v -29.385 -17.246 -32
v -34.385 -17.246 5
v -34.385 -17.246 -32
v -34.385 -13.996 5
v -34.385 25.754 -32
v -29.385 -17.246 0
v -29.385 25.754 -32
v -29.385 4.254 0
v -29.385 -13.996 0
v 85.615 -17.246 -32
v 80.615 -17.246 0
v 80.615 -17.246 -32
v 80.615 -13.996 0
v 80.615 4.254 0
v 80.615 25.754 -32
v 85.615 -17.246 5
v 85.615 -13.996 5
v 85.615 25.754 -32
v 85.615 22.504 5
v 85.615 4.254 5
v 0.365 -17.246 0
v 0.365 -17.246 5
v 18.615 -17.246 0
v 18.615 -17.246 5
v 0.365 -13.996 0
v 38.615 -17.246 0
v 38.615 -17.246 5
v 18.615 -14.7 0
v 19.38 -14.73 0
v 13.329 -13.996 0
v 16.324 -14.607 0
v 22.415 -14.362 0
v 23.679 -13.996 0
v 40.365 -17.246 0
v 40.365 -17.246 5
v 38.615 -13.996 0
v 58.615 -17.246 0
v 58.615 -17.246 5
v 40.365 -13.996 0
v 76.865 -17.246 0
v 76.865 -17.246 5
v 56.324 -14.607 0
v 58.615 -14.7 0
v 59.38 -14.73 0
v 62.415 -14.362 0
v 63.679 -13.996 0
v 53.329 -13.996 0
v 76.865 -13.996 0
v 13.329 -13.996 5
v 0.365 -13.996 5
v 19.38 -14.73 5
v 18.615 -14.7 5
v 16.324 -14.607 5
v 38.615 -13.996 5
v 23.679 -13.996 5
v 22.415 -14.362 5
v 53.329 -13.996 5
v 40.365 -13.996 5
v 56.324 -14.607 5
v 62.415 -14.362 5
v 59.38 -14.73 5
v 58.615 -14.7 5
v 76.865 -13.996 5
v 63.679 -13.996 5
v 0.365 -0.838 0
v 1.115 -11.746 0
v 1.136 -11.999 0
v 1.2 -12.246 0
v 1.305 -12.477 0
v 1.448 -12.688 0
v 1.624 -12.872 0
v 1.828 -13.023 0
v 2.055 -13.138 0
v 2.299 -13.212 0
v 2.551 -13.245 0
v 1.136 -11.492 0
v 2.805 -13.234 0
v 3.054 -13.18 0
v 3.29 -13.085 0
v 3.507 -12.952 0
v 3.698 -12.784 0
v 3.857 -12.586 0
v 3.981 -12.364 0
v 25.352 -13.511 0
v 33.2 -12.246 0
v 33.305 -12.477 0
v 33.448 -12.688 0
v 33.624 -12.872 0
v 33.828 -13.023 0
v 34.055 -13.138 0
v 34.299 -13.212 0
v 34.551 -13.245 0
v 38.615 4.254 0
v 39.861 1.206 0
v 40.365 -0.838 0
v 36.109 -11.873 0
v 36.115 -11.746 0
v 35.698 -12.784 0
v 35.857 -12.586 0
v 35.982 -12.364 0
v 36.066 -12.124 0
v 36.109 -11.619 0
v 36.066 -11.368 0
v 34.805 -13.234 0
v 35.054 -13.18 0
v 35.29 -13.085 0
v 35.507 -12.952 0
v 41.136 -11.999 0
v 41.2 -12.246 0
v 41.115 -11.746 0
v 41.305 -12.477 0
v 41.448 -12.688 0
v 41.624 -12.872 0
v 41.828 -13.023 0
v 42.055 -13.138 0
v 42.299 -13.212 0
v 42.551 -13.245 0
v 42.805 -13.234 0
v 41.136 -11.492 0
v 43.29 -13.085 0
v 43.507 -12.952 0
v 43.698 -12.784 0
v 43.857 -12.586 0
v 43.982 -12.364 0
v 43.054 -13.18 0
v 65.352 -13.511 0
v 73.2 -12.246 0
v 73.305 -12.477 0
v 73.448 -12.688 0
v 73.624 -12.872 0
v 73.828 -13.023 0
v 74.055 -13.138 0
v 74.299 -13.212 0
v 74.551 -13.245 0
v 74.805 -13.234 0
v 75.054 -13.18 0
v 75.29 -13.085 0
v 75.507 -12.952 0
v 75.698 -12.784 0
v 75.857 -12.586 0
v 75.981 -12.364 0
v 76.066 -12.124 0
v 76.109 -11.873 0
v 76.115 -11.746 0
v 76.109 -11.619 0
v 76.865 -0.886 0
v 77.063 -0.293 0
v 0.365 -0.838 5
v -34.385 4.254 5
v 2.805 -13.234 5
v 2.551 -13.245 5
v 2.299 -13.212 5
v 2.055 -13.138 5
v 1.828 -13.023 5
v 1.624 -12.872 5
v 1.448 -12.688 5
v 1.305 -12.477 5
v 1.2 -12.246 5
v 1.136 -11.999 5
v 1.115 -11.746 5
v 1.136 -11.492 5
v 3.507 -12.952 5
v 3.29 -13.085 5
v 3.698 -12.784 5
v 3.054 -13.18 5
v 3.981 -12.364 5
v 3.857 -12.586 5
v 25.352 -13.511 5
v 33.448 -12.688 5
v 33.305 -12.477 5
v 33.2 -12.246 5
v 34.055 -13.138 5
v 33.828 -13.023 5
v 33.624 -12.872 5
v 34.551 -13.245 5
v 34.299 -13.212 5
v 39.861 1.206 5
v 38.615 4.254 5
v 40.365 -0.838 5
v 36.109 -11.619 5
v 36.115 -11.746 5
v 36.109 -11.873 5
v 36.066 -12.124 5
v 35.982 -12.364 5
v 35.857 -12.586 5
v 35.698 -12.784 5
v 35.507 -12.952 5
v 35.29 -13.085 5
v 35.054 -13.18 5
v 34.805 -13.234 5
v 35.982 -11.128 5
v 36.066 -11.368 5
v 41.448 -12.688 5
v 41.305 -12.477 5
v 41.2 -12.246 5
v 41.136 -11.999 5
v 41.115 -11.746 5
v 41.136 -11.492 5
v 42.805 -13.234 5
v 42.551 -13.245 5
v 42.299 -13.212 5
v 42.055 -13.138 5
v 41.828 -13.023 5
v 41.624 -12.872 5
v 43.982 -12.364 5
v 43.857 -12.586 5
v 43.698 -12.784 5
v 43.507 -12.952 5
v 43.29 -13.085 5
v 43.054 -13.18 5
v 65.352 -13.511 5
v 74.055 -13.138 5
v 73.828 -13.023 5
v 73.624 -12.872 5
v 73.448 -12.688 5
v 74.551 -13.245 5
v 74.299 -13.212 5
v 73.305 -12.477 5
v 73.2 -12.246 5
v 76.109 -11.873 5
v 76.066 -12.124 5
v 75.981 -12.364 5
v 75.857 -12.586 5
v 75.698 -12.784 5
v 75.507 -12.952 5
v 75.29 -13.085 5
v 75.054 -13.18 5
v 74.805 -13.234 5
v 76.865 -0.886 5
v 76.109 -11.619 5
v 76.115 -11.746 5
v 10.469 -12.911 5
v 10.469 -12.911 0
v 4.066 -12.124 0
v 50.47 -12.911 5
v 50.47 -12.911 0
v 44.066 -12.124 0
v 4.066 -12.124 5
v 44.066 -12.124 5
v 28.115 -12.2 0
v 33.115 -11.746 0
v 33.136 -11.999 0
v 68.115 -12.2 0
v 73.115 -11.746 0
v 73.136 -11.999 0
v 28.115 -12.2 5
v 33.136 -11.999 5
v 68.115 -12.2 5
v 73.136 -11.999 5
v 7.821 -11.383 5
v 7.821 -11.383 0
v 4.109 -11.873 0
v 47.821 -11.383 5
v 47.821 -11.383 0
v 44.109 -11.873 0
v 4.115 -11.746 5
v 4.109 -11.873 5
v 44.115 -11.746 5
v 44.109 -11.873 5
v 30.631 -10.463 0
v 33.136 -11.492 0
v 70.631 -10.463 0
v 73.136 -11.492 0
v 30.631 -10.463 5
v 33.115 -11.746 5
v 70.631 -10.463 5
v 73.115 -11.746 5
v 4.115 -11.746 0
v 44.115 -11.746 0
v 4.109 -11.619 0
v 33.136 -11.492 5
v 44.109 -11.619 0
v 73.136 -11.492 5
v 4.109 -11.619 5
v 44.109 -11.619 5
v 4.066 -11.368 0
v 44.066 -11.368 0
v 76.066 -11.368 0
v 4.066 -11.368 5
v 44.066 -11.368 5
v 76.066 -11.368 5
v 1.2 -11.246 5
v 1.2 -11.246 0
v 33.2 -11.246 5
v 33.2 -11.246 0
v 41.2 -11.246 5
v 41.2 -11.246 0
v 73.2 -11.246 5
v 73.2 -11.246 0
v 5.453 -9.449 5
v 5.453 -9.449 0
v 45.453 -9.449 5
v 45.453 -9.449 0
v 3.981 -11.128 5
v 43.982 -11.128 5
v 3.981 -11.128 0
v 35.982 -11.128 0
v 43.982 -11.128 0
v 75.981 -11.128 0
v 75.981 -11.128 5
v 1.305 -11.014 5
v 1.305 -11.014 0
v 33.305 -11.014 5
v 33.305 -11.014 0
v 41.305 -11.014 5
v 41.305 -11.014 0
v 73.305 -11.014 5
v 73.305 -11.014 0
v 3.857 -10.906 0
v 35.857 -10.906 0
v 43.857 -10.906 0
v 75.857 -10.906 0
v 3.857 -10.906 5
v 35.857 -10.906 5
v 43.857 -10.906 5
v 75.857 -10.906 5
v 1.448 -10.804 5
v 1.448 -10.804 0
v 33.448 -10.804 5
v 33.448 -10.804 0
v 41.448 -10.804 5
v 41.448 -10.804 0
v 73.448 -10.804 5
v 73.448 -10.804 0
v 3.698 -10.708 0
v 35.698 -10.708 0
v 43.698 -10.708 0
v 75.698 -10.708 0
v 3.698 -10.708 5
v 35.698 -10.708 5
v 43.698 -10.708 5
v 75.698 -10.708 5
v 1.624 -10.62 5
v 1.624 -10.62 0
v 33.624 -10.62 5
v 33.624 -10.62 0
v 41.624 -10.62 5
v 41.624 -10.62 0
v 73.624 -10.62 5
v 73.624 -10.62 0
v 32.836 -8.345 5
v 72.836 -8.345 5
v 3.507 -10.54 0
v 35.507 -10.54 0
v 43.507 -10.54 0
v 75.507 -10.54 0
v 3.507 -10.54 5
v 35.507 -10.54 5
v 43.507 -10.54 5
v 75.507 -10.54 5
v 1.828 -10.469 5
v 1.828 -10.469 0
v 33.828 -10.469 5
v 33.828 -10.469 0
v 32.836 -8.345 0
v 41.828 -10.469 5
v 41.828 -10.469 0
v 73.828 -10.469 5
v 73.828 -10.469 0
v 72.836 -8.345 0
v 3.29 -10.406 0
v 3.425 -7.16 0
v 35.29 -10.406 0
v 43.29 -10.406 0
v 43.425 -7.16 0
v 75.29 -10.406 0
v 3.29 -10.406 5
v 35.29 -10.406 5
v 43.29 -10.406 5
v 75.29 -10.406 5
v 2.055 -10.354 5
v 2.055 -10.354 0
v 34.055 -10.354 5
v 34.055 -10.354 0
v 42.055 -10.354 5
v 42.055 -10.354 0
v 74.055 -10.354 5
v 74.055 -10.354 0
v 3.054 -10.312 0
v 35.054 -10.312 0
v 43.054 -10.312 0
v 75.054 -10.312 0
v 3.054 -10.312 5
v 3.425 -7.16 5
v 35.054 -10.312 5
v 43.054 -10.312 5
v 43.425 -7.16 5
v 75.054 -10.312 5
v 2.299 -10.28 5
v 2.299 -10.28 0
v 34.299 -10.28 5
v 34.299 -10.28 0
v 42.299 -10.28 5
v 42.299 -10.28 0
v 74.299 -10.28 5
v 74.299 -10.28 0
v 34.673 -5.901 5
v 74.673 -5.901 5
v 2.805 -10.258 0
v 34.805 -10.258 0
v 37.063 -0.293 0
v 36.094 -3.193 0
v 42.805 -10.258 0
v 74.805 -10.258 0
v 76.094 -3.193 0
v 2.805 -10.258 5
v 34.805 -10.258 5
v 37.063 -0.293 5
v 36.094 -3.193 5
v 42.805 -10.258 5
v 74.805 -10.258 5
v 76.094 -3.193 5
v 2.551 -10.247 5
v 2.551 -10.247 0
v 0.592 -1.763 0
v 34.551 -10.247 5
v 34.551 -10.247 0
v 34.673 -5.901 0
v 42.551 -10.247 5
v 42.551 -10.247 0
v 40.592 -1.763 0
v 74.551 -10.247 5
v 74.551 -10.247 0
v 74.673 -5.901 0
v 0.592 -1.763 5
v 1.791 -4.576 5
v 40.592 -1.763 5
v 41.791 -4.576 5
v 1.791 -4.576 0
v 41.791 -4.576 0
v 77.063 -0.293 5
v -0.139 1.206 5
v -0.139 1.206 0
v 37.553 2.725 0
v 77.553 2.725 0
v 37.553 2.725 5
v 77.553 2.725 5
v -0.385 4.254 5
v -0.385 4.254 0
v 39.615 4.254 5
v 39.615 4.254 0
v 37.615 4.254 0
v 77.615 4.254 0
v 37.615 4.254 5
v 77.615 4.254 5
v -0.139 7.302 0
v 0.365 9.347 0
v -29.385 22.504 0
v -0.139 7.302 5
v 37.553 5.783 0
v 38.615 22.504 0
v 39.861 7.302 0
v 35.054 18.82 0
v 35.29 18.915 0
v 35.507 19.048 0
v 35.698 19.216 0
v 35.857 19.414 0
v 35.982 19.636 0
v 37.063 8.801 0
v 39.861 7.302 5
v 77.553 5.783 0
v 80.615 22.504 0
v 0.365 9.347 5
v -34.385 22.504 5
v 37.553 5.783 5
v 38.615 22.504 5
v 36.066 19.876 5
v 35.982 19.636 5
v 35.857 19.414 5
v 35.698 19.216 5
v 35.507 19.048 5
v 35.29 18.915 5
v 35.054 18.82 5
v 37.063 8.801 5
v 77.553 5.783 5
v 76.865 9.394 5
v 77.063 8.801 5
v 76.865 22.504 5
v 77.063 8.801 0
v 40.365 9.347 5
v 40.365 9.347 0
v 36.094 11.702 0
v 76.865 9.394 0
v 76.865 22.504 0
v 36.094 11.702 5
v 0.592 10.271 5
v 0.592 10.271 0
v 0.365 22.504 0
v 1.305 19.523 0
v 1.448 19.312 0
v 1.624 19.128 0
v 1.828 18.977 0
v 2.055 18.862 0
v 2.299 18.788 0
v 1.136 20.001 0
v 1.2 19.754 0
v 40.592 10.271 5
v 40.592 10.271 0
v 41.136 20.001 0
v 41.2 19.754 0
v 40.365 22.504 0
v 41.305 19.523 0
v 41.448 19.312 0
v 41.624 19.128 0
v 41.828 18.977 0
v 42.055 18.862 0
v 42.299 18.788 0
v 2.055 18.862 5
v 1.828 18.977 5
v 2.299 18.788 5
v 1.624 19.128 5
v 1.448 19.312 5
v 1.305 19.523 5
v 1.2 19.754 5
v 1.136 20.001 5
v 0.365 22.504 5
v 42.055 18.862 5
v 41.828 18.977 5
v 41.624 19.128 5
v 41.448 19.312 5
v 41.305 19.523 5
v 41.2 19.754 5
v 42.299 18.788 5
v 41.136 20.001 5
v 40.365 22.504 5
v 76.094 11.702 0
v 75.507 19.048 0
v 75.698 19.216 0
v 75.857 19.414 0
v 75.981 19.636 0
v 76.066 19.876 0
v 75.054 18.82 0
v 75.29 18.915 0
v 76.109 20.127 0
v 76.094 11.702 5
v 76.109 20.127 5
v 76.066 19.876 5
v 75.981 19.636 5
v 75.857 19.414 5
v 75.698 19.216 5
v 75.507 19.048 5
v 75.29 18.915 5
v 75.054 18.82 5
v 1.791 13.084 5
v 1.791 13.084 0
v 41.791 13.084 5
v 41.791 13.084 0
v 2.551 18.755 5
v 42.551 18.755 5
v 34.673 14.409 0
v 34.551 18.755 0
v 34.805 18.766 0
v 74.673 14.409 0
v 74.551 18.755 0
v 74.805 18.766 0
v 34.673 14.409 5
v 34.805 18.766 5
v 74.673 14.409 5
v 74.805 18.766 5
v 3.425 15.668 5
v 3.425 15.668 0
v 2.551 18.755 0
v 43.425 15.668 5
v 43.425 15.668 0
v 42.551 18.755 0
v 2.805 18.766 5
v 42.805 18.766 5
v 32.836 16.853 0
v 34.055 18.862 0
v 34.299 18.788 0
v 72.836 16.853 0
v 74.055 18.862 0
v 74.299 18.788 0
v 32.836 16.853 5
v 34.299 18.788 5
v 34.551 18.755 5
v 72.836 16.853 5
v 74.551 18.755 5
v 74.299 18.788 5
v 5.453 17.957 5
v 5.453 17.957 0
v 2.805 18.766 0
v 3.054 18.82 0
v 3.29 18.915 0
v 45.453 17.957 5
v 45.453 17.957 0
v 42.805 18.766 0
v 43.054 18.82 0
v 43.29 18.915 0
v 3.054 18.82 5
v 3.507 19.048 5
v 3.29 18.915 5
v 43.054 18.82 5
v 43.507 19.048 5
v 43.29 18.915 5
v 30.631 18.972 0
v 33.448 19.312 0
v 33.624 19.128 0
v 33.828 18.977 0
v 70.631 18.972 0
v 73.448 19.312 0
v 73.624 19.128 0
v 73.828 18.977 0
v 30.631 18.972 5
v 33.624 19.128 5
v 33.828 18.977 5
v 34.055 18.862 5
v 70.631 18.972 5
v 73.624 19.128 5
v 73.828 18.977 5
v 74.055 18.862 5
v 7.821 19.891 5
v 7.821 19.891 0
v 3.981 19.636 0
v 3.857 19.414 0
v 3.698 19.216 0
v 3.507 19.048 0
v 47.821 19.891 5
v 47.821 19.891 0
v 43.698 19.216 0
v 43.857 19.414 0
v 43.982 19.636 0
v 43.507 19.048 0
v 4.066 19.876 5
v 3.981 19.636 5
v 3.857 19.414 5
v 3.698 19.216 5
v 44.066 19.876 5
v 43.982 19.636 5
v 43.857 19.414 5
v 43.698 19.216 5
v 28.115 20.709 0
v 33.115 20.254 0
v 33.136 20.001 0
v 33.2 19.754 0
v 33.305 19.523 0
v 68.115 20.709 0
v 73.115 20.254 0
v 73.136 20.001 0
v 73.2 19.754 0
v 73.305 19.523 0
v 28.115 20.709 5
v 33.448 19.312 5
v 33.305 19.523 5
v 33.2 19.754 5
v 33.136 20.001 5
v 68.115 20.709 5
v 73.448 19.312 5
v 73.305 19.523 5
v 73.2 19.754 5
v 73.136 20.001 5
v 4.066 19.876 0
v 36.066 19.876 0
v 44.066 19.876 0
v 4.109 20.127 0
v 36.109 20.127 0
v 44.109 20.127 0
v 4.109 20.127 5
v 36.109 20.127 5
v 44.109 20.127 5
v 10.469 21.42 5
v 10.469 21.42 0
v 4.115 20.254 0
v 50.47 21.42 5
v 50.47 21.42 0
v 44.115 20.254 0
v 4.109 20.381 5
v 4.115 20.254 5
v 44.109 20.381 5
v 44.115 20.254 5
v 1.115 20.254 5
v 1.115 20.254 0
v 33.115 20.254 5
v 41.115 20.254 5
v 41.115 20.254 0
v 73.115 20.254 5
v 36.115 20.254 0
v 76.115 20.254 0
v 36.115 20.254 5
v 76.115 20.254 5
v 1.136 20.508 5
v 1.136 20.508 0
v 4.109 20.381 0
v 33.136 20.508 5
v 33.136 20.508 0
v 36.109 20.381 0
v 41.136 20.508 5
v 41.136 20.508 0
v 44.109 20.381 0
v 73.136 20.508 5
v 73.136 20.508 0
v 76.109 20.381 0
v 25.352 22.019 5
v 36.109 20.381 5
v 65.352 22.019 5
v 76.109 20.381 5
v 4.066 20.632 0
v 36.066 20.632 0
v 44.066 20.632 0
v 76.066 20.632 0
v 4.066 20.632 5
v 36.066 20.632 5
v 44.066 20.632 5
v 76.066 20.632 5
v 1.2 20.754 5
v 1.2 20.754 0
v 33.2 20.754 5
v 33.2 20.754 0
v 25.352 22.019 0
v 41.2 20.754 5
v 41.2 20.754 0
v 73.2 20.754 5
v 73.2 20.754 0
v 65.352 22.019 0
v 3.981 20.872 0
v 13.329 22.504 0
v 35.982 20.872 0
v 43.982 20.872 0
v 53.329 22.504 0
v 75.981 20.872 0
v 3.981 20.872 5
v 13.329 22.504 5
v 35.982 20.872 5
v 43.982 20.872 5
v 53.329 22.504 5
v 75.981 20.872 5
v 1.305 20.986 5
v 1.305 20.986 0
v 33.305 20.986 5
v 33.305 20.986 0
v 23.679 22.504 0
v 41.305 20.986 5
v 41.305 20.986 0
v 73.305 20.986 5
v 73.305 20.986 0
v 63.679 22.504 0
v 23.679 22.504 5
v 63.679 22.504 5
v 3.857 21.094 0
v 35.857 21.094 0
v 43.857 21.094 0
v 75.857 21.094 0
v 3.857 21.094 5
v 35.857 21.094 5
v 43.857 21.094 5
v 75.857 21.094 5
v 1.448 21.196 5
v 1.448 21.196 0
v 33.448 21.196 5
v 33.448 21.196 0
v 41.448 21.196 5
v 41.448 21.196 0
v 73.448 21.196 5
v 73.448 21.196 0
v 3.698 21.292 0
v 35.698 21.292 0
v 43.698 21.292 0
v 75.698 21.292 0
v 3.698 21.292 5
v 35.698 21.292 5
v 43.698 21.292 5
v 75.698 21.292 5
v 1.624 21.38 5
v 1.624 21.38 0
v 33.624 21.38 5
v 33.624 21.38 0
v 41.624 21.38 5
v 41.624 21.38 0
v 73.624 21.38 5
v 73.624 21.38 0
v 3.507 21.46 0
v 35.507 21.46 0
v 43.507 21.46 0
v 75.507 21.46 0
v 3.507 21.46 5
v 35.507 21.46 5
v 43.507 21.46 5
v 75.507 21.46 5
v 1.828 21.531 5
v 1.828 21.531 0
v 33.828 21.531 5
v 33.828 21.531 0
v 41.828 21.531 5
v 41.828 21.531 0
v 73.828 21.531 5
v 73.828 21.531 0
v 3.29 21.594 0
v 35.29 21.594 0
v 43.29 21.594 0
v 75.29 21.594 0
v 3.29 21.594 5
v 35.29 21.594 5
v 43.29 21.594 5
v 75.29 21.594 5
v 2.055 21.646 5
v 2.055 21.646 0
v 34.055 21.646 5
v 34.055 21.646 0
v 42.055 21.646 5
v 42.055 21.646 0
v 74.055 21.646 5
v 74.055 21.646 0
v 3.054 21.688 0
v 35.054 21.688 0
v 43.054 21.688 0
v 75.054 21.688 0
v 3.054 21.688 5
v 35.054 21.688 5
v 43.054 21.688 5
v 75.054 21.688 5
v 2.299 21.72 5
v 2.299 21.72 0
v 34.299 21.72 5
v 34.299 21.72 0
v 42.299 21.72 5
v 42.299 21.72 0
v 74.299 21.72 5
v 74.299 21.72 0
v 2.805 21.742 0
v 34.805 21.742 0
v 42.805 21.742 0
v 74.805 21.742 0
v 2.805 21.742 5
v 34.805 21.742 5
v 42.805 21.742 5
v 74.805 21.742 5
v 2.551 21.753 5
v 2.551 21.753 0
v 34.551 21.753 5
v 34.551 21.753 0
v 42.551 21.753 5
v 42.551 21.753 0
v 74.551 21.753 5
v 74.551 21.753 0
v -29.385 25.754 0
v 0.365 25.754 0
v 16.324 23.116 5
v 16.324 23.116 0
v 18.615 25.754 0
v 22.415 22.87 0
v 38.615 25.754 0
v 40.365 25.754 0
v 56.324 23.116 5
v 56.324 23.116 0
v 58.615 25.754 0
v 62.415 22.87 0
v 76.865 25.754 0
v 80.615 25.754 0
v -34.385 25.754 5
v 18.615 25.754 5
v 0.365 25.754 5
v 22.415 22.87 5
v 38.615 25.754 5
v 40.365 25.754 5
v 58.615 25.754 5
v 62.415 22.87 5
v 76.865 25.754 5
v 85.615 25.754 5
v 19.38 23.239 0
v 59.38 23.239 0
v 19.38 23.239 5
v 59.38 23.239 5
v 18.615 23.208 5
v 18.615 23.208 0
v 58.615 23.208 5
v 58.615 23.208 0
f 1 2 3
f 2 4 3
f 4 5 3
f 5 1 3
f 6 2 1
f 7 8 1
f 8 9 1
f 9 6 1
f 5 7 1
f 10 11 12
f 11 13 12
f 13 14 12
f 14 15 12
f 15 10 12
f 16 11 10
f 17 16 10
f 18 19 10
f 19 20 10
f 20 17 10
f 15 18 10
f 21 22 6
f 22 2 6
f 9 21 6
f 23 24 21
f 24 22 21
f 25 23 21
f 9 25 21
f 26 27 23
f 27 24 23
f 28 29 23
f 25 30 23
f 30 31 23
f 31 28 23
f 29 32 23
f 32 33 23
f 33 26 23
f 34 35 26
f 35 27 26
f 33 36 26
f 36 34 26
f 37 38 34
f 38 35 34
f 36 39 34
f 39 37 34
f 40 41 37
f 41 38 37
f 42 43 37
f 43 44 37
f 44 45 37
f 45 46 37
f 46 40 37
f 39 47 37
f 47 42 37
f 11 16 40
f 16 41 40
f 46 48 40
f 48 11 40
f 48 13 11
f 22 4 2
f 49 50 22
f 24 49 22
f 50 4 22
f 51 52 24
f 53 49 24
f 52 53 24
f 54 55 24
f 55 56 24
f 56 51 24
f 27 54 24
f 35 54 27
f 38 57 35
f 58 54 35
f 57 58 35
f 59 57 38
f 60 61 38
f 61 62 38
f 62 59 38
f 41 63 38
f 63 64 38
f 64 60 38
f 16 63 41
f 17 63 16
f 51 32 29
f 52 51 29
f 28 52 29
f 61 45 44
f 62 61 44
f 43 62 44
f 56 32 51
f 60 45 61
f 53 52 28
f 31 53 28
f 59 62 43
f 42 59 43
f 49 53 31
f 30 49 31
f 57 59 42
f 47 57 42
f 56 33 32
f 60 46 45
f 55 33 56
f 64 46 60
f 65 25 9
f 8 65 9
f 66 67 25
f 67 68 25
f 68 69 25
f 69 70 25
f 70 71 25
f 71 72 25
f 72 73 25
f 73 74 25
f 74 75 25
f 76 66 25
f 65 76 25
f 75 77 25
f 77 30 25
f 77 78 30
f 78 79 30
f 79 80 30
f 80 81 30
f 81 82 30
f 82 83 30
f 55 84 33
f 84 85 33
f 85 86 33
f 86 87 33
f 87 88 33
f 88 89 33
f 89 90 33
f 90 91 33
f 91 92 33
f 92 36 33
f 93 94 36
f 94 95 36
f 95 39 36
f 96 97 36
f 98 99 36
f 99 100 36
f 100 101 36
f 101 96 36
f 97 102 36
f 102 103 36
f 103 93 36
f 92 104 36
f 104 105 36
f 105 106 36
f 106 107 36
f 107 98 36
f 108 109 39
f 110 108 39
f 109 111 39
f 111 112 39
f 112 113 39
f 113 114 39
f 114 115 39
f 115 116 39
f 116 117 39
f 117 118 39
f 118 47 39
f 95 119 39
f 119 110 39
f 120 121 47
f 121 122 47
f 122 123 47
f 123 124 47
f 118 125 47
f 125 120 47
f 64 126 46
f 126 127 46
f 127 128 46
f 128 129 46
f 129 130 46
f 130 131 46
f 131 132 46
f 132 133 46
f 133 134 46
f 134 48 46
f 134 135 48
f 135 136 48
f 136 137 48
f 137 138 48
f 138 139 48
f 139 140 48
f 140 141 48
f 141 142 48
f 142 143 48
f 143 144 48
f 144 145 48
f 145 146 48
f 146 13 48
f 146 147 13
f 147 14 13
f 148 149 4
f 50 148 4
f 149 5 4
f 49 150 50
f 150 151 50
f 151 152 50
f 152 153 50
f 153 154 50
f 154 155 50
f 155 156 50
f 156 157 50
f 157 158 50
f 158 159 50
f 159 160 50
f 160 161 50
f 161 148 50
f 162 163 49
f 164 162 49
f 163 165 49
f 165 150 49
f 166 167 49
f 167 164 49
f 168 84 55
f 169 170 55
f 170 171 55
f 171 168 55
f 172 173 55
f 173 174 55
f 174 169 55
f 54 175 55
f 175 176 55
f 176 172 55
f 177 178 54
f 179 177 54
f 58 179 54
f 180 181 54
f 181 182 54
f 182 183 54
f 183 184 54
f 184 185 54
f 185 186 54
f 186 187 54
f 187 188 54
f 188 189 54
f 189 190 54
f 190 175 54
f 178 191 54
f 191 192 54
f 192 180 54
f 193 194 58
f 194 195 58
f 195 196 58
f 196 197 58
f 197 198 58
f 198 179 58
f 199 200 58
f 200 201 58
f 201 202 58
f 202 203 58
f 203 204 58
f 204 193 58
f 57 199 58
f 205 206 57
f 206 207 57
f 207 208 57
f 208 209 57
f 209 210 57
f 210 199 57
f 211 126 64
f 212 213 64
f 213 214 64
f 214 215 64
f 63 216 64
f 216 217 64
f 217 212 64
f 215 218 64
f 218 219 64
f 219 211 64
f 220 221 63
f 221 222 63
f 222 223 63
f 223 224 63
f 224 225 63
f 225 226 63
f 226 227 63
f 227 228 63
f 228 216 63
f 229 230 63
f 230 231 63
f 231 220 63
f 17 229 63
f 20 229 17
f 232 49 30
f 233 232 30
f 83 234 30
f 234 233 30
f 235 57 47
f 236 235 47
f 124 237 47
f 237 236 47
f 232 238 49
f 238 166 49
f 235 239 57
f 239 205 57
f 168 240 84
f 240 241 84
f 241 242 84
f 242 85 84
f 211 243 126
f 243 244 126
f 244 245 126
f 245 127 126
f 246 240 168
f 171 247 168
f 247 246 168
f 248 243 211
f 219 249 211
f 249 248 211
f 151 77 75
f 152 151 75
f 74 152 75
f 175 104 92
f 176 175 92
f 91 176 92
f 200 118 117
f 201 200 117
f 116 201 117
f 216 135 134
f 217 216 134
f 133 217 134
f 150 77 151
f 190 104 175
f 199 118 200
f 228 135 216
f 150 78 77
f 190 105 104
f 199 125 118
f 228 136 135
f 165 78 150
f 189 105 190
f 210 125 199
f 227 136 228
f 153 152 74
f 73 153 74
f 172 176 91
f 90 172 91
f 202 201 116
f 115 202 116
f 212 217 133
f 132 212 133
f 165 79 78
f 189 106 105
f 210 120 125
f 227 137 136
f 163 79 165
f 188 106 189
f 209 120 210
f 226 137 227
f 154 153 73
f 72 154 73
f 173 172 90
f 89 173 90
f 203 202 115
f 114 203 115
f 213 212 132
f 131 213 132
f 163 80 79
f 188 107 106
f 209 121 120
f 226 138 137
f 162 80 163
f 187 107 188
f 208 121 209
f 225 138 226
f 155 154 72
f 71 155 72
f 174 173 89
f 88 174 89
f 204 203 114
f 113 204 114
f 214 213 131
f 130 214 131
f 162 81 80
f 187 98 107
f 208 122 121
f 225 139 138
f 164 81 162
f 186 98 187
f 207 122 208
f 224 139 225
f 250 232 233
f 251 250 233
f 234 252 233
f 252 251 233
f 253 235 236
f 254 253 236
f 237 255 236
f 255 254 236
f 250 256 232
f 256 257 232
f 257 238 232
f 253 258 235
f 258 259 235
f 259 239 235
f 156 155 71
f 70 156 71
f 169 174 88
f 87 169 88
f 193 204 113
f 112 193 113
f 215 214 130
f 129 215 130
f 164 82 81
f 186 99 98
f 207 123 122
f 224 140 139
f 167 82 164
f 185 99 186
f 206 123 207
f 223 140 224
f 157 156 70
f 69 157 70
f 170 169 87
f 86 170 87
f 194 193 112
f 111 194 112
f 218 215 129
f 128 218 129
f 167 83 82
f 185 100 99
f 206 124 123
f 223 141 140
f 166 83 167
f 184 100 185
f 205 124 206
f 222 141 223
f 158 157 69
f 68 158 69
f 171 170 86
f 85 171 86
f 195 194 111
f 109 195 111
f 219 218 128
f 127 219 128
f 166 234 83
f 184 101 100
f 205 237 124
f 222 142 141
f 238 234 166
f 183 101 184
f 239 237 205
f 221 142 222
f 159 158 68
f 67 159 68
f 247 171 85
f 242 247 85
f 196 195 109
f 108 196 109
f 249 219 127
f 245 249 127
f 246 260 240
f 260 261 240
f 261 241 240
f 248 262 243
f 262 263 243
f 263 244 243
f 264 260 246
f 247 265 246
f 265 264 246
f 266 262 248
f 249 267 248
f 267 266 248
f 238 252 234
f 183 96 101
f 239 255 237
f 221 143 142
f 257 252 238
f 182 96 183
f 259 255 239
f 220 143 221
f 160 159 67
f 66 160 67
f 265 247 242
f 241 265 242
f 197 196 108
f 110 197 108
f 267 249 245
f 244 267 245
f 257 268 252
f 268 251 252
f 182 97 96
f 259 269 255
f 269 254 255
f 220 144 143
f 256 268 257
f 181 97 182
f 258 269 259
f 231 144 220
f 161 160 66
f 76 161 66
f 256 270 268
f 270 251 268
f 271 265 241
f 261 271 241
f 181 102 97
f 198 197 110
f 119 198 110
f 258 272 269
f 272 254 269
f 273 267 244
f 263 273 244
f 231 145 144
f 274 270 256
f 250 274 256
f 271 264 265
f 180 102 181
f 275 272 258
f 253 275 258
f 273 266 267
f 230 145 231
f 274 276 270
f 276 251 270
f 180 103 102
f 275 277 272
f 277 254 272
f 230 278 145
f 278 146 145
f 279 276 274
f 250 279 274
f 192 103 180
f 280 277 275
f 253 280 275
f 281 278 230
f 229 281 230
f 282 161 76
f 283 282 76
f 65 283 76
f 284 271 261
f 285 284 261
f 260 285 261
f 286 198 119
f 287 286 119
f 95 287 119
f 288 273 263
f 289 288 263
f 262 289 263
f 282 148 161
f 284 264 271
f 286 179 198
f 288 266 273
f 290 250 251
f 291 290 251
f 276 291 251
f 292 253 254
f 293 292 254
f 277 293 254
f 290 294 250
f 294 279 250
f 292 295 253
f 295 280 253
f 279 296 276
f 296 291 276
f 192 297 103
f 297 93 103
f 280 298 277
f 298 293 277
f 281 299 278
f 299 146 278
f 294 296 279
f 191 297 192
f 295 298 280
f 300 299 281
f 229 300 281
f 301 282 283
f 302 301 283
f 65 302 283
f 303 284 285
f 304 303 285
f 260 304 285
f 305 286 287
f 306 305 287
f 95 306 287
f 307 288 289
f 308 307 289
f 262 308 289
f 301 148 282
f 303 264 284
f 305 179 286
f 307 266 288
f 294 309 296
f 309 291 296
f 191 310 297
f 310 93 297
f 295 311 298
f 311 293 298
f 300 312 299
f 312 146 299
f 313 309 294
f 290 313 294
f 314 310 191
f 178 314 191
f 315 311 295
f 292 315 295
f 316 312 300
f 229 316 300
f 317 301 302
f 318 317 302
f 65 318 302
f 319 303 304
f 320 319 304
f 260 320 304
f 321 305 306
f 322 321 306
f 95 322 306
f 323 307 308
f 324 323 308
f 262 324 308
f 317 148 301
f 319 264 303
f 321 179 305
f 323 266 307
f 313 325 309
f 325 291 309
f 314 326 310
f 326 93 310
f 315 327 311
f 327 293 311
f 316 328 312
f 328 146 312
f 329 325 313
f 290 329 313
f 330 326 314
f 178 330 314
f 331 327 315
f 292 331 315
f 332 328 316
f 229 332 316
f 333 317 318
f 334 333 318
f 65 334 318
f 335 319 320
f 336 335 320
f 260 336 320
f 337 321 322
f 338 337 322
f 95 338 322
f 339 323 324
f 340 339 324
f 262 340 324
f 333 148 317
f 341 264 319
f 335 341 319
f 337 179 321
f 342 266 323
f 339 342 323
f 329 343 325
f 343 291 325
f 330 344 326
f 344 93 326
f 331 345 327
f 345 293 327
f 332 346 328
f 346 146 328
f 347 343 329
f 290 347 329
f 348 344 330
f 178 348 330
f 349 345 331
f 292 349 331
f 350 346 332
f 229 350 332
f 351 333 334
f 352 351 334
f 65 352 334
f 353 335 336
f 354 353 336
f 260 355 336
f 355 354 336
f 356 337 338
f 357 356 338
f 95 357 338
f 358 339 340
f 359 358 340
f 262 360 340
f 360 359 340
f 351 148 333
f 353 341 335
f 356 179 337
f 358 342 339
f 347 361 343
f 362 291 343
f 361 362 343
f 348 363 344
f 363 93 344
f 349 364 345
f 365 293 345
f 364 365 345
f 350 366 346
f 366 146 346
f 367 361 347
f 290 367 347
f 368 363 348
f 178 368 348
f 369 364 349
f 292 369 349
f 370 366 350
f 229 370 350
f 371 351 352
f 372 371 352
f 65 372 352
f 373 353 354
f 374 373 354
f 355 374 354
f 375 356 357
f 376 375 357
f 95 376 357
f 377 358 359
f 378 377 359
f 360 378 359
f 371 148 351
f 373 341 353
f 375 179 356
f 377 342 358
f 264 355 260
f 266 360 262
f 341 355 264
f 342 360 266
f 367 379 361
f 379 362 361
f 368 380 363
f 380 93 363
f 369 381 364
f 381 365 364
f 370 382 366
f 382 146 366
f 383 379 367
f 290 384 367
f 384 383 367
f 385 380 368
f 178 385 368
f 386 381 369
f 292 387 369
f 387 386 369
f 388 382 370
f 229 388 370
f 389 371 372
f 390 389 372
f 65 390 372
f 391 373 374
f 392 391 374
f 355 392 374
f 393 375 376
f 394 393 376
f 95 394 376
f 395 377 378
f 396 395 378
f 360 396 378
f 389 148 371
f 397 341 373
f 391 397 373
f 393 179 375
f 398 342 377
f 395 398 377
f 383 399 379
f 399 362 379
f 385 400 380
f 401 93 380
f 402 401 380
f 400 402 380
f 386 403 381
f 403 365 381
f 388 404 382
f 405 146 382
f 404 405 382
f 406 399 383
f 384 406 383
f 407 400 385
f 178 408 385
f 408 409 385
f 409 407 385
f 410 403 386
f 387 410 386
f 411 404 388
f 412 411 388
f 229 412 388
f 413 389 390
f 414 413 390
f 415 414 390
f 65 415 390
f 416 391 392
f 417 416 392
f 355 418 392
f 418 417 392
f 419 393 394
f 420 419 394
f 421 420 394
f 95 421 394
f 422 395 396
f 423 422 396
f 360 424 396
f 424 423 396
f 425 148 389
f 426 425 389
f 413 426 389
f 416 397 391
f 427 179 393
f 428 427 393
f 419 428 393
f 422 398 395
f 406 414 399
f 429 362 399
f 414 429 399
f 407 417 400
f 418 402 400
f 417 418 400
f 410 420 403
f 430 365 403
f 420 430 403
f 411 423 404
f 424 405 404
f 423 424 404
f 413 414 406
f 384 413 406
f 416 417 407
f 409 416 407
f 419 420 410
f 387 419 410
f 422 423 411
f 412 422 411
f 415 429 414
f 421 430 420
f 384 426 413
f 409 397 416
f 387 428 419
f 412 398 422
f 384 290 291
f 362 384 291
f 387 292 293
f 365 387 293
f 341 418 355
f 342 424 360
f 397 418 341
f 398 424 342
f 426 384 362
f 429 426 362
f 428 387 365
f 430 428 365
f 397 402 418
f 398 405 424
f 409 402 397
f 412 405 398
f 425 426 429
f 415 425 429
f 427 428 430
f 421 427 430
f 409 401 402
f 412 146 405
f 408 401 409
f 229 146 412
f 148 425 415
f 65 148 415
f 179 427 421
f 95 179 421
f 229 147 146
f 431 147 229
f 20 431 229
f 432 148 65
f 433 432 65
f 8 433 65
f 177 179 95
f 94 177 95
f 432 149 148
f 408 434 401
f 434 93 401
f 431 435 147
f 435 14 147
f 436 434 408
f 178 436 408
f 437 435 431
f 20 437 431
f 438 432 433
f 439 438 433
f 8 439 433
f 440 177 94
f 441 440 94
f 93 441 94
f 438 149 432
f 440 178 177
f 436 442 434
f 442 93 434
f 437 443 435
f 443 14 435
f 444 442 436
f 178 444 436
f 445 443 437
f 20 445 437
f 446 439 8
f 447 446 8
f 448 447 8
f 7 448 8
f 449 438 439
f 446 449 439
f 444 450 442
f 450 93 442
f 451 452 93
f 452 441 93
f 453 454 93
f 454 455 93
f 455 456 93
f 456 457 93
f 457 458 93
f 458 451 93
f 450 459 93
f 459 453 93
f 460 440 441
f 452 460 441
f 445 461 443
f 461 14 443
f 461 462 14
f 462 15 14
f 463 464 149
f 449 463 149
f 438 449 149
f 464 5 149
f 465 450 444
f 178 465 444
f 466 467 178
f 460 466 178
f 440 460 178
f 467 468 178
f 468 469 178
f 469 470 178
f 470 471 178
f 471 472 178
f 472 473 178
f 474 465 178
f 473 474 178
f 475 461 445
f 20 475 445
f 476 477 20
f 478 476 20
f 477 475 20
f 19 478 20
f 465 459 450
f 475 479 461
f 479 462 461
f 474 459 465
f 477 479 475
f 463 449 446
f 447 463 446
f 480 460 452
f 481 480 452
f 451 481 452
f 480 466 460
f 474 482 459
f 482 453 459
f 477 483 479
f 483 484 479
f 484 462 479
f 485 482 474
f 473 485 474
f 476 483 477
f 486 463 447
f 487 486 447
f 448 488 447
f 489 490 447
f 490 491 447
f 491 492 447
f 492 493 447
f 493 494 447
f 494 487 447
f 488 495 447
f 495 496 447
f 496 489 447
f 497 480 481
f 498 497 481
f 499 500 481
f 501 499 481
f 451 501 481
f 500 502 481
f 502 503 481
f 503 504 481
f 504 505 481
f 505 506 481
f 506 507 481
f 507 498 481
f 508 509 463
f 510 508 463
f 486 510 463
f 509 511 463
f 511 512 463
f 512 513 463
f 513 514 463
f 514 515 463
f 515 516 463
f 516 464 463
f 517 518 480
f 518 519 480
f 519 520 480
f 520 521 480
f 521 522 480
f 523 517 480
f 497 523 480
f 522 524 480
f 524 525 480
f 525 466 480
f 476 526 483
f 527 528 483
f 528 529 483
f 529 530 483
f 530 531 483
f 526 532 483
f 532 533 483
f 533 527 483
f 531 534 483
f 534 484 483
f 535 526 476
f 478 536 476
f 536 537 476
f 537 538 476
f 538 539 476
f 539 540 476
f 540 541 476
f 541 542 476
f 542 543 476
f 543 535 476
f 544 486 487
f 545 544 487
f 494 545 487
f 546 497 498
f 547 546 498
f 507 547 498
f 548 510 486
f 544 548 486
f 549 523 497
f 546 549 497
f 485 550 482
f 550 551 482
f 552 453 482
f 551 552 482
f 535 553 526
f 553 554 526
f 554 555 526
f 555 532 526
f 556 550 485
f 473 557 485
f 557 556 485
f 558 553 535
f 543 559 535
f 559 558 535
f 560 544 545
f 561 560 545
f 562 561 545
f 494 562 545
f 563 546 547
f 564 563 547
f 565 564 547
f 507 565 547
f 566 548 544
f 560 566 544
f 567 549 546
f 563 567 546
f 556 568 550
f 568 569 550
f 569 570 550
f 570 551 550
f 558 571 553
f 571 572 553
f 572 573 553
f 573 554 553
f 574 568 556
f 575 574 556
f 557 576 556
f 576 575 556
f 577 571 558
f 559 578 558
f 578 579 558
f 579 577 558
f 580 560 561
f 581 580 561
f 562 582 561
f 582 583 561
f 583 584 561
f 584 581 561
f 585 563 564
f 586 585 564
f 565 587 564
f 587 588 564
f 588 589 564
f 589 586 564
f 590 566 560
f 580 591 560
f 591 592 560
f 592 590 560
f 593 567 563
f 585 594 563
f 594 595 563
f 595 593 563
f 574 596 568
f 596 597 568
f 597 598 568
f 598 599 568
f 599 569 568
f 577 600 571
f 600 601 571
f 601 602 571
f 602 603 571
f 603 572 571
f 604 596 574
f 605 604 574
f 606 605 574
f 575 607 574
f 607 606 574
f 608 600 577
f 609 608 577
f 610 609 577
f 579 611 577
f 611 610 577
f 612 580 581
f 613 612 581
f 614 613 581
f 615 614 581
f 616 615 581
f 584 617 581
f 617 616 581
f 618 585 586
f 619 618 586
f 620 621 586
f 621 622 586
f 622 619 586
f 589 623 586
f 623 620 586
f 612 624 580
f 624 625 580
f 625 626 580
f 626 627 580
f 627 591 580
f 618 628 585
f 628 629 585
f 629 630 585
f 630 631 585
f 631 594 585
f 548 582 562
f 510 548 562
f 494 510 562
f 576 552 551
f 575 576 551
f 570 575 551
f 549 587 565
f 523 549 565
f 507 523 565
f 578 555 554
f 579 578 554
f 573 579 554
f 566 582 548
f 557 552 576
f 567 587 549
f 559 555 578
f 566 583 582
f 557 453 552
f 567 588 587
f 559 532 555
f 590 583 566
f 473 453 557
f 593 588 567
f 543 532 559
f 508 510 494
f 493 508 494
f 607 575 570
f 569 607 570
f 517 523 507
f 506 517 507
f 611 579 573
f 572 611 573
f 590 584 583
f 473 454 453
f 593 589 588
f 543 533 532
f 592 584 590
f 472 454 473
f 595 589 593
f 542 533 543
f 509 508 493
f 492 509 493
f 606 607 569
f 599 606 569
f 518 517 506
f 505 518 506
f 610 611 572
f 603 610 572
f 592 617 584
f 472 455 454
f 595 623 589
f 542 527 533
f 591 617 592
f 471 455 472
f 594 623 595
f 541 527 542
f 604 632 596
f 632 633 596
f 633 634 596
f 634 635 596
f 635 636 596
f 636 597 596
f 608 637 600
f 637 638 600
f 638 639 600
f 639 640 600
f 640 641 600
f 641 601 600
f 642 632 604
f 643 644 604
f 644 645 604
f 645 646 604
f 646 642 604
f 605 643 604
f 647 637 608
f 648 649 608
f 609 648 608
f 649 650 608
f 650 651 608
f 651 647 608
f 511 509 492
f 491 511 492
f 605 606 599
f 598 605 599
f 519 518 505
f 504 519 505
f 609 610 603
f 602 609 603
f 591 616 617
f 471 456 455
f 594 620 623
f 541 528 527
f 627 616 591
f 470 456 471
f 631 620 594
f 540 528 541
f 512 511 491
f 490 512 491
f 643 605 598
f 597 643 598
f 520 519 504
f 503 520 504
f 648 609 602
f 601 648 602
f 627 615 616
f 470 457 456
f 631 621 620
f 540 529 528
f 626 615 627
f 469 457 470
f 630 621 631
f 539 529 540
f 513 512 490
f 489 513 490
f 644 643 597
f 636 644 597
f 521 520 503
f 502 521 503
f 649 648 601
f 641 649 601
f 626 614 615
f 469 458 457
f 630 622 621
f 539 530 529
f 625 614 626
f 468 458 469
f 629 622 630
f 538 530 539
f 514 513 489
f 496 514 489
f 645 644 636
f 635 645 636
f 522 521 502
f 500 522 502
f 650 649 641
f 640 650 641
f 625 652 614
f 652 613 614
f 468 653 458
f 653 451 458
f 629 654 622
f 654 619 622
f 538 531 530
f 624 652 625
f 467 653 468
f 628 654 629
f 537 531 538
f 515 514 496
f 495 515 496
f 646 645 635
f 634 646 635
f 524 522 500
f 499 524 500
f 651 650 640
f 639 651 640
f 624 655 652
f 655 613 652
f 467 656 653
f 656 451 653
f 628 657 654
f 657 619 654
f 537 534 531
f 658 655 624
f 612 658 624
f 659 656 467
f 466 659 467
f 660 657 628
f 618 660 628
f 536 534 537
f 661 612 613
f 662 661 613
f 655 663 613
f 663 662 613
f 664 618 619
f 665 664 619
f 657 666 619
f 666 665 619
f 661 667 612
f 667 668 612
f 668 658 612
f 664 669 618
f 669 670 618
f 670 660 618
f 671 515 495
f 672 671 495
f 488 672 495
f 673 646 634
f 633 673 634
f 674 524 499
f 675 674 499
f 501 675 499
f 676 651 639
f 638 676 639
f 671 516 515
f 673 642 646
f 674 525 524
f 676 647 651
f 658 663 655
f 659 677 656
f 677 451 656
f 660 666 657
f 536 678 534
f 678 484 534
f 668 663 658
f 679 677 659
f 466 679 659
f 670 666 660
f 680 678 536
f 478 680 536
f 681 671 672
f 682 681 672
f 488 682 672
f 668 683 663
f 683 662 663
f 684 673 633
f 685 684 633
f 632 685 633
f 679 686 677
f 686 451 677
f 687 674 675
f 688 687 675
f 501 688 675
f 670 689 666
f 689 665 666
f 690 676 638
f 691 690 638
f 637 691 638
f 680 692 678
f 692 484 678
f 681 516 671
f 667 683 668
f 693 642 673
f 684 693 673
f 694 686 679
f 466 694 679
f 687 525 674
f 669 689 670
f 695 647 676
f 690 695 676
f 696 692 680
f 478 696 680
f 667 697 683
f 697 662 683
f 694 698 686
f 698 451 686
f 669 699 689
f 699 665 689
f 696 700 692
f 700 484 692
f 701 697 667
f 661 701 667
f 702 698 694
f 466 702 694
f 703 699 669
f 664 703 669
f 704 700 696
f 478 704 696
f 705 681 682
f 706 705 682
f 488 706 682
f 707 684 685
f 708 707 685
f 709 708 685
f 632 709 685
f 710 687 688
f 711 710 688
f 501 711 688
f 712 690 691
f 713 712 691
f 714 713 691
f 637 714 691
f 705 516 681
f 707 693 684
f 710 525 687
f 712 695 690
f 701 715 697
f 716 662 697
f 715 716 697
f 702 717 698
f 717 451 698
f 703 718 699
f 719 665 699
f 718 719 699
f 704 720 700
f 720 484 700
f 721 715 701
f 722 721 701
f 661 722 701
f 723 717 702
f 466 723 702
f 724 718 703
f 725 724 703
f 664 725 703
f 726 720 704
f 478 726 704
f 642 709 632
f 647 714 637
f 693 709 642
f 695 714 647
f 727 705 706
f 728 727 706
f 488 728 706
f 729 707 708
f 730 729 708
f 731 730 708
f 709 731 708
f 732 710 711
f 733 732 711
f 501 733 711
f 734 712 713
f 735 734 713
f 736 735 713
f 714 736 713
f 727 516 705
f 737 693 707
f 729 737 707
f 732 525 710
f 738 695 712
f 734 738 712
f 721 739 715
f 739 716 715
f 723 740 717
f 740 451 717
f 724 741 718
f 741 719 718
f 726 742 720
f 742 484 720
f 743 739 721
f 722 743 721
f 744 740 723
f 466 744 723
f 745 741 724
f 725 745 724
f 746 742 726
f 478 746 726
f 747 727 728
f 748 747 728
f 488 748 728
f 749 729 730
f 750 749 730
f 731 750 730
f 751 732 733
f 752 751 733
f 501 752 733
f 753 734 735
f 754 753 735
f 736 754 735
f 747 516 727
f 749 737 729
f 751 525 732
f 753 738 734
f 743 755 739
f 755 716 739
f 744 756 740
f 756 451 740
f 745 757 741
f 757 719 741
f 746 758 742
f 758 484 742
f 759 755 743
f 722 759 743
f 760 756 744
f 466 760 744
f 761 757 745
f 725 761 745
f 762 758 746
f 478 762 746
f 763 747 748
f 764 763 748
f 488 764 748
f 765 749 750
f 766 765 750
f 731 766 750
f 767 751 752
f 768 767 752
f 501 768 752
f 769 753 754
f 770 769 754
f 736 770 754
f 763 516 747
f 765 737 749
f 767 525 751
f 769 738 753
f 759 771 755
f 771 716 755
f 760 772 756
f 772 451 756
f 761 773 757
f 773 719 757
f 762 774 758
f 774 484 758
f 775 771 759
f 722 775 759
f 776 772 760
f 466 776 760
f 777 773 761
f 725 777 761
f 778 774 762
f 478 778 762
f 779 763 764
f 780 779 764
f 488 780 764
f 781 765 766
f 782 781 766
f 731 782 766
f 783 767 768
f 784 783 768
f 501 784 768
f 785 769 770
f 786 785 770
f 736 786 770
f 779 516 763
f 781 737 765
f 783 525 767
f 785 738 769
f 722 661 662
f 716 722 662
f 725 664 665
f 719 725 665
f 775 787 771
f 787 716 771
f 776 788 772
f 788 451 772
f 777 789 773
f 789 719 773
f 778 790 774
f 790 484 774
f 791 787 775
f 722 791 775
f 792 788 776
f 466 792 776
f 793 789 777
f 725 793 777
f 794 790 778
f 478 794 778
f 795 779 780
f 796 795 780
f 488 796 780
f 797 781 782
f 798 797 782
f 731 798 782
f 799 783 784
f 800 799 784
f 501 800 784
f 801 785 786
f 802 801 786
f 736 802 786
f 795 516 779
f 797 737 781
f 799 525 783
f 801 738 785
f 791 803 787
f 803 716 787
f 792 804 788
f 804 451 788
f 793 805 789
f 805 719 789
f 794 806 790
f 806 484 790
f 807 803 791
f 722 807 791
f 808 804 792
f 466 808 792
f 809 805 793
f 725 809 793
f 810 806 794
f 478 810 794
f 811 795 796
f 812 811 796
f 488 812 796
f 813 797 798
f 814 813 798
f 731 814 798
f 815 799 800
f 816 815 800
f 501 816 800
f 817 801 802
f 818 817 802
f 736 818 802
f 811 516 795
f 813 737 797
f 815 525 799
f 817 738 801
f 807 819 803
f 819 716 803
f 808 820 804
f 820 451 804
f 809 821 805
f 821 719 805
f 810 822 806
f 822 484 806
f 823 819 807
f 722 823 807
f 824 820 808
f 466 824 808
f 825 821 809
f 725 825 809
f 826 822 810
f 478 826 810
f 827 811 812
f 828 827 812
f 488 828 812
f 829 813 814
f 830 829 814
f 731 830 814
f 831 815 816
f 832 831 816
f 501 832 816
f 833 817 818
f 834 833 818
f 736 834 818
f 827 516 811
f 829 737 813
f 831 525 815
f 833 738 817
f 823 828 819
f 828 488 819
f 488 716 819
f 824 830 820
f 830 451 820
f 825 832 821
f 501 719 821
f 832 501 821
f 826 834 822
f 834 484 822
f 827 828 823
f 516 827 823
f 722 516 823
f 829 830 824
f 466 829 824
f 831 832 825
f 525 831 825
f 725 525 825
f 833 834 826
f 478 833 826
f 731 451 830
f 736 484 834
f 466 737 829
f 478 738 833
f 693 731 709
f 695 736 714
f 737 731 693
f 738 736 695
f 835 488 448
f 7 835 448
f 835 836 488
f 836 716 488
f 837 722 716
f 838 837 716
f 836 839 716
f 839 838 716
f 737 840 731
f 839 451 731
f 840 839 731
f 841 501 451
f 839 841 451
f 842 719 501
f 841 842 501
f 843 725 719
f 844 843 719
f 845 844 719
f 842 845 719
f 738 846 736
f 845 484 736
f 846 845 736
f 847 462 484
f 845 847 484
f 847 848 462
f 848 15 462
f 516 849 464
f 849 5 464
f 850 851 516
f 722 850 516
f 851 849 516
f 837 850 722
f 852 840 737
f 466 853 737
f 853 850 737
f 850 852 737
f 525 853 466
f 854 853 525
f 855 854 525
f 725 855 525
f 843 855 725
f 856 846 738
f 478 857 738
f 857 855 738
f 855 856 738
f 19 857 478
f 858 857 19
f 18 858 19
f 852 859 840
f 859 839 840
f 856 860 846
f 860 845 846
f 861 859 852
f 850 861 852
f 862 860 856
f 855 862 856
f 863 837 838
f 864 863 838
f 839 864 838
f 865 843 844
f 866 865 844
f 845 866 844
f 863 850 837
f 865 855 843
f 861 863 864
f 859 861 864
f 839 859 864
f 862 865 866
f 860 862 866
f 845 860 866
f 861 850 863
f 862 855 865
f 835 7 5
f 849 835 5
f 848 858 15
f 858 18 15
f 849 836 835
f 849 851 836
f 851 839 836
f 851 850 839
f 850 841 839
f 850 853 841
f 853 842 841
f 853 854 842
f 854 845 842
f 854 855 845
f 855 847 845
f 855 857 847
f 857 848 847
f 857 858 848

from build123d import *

# Parameters (mm, degrees)
SKETCH_1_W      = 110
SKETCH_1_H      = 43
SKETCH_1_R      = 19
SKETCH_1_R_2    = 1.5
EXTRUDE_2_DEPTH = 5
SKETCH_2_W      = 5
SKETCH_2_H      = 43
EXTRUDE_4_DEPTH = 37


with BuildPart() as part:
    # 草图1 → 凸台-拉伸2 (new body)
    with BuildSketch(Plane.XY):
        with Locations((25.61465721, 4.254137116)):
            Rectangle(SKETCH_1_W, SKETCH_1_H)
        with Locations((58.61465721, 4.254137116)):
            Circle(SKETCH_1_R, mode=Mode.SUBTRACT)
        with Locations((74.61465721, 20.254137116)):
            Circle(SKETCH_1_R_2, mode=Mode.SUBTRACT)
        with Locations((74.61465721, -11.745862884)):
            Circle(SKETCH_1_R_2, mode=Mode.SUBTRACT)
        with Locations((42.61465721, -11.745862884)):
            Circle(SKETCH_1_R_2, mode=Mode.SUBTRACT)
        with Locations((42.61465721, 20.254137116)):
            Circle(SKETCH_1_R_2, mode=Mode.SUBTRACT)
        with Locations((34.61465721, -11.745862884)):
            Circle(SKETCH_1_R_2, mode=Mode.SUBTRACT)
        with Locations((2.61465721, -11.745862884)):
            Circle(SKETCH_1_R_2, mode=Mode.SUBTRACT)
        with Locations((2.61465721, 20.254137116)):
            Circle(SKETCH_1_R_2, mode=Mode.SUBTRACT)
        with Locations((34.61465721, 20.254137116)):
            Circle(SKETCH_1_R_2, mode=Mode.SUBTRACT)
        with Locations((18.61465721, 4.254137116)):
            Circle(SKETCH_1_R, mode=Mode.SUBTRACT)
    extrude(amount=EXTRUDE_2_DEPTH)

    # 草图2 → 凸台-拉伸4 (add)
    with BuildSketch(Plane.XY.offset(5)):
        with Locations((83.11465721, 4.254137116)):
            Rectangle(SKETCH_2_W, SKETCH_2_H)
        with Locations((-31.88534279, 4.254137116)):
            Rectangle(SKETCH_2_W, SKETCH_2_H)
    extrude(amount=-EXTRUDE_4_DEPTH)


solid = part.part
